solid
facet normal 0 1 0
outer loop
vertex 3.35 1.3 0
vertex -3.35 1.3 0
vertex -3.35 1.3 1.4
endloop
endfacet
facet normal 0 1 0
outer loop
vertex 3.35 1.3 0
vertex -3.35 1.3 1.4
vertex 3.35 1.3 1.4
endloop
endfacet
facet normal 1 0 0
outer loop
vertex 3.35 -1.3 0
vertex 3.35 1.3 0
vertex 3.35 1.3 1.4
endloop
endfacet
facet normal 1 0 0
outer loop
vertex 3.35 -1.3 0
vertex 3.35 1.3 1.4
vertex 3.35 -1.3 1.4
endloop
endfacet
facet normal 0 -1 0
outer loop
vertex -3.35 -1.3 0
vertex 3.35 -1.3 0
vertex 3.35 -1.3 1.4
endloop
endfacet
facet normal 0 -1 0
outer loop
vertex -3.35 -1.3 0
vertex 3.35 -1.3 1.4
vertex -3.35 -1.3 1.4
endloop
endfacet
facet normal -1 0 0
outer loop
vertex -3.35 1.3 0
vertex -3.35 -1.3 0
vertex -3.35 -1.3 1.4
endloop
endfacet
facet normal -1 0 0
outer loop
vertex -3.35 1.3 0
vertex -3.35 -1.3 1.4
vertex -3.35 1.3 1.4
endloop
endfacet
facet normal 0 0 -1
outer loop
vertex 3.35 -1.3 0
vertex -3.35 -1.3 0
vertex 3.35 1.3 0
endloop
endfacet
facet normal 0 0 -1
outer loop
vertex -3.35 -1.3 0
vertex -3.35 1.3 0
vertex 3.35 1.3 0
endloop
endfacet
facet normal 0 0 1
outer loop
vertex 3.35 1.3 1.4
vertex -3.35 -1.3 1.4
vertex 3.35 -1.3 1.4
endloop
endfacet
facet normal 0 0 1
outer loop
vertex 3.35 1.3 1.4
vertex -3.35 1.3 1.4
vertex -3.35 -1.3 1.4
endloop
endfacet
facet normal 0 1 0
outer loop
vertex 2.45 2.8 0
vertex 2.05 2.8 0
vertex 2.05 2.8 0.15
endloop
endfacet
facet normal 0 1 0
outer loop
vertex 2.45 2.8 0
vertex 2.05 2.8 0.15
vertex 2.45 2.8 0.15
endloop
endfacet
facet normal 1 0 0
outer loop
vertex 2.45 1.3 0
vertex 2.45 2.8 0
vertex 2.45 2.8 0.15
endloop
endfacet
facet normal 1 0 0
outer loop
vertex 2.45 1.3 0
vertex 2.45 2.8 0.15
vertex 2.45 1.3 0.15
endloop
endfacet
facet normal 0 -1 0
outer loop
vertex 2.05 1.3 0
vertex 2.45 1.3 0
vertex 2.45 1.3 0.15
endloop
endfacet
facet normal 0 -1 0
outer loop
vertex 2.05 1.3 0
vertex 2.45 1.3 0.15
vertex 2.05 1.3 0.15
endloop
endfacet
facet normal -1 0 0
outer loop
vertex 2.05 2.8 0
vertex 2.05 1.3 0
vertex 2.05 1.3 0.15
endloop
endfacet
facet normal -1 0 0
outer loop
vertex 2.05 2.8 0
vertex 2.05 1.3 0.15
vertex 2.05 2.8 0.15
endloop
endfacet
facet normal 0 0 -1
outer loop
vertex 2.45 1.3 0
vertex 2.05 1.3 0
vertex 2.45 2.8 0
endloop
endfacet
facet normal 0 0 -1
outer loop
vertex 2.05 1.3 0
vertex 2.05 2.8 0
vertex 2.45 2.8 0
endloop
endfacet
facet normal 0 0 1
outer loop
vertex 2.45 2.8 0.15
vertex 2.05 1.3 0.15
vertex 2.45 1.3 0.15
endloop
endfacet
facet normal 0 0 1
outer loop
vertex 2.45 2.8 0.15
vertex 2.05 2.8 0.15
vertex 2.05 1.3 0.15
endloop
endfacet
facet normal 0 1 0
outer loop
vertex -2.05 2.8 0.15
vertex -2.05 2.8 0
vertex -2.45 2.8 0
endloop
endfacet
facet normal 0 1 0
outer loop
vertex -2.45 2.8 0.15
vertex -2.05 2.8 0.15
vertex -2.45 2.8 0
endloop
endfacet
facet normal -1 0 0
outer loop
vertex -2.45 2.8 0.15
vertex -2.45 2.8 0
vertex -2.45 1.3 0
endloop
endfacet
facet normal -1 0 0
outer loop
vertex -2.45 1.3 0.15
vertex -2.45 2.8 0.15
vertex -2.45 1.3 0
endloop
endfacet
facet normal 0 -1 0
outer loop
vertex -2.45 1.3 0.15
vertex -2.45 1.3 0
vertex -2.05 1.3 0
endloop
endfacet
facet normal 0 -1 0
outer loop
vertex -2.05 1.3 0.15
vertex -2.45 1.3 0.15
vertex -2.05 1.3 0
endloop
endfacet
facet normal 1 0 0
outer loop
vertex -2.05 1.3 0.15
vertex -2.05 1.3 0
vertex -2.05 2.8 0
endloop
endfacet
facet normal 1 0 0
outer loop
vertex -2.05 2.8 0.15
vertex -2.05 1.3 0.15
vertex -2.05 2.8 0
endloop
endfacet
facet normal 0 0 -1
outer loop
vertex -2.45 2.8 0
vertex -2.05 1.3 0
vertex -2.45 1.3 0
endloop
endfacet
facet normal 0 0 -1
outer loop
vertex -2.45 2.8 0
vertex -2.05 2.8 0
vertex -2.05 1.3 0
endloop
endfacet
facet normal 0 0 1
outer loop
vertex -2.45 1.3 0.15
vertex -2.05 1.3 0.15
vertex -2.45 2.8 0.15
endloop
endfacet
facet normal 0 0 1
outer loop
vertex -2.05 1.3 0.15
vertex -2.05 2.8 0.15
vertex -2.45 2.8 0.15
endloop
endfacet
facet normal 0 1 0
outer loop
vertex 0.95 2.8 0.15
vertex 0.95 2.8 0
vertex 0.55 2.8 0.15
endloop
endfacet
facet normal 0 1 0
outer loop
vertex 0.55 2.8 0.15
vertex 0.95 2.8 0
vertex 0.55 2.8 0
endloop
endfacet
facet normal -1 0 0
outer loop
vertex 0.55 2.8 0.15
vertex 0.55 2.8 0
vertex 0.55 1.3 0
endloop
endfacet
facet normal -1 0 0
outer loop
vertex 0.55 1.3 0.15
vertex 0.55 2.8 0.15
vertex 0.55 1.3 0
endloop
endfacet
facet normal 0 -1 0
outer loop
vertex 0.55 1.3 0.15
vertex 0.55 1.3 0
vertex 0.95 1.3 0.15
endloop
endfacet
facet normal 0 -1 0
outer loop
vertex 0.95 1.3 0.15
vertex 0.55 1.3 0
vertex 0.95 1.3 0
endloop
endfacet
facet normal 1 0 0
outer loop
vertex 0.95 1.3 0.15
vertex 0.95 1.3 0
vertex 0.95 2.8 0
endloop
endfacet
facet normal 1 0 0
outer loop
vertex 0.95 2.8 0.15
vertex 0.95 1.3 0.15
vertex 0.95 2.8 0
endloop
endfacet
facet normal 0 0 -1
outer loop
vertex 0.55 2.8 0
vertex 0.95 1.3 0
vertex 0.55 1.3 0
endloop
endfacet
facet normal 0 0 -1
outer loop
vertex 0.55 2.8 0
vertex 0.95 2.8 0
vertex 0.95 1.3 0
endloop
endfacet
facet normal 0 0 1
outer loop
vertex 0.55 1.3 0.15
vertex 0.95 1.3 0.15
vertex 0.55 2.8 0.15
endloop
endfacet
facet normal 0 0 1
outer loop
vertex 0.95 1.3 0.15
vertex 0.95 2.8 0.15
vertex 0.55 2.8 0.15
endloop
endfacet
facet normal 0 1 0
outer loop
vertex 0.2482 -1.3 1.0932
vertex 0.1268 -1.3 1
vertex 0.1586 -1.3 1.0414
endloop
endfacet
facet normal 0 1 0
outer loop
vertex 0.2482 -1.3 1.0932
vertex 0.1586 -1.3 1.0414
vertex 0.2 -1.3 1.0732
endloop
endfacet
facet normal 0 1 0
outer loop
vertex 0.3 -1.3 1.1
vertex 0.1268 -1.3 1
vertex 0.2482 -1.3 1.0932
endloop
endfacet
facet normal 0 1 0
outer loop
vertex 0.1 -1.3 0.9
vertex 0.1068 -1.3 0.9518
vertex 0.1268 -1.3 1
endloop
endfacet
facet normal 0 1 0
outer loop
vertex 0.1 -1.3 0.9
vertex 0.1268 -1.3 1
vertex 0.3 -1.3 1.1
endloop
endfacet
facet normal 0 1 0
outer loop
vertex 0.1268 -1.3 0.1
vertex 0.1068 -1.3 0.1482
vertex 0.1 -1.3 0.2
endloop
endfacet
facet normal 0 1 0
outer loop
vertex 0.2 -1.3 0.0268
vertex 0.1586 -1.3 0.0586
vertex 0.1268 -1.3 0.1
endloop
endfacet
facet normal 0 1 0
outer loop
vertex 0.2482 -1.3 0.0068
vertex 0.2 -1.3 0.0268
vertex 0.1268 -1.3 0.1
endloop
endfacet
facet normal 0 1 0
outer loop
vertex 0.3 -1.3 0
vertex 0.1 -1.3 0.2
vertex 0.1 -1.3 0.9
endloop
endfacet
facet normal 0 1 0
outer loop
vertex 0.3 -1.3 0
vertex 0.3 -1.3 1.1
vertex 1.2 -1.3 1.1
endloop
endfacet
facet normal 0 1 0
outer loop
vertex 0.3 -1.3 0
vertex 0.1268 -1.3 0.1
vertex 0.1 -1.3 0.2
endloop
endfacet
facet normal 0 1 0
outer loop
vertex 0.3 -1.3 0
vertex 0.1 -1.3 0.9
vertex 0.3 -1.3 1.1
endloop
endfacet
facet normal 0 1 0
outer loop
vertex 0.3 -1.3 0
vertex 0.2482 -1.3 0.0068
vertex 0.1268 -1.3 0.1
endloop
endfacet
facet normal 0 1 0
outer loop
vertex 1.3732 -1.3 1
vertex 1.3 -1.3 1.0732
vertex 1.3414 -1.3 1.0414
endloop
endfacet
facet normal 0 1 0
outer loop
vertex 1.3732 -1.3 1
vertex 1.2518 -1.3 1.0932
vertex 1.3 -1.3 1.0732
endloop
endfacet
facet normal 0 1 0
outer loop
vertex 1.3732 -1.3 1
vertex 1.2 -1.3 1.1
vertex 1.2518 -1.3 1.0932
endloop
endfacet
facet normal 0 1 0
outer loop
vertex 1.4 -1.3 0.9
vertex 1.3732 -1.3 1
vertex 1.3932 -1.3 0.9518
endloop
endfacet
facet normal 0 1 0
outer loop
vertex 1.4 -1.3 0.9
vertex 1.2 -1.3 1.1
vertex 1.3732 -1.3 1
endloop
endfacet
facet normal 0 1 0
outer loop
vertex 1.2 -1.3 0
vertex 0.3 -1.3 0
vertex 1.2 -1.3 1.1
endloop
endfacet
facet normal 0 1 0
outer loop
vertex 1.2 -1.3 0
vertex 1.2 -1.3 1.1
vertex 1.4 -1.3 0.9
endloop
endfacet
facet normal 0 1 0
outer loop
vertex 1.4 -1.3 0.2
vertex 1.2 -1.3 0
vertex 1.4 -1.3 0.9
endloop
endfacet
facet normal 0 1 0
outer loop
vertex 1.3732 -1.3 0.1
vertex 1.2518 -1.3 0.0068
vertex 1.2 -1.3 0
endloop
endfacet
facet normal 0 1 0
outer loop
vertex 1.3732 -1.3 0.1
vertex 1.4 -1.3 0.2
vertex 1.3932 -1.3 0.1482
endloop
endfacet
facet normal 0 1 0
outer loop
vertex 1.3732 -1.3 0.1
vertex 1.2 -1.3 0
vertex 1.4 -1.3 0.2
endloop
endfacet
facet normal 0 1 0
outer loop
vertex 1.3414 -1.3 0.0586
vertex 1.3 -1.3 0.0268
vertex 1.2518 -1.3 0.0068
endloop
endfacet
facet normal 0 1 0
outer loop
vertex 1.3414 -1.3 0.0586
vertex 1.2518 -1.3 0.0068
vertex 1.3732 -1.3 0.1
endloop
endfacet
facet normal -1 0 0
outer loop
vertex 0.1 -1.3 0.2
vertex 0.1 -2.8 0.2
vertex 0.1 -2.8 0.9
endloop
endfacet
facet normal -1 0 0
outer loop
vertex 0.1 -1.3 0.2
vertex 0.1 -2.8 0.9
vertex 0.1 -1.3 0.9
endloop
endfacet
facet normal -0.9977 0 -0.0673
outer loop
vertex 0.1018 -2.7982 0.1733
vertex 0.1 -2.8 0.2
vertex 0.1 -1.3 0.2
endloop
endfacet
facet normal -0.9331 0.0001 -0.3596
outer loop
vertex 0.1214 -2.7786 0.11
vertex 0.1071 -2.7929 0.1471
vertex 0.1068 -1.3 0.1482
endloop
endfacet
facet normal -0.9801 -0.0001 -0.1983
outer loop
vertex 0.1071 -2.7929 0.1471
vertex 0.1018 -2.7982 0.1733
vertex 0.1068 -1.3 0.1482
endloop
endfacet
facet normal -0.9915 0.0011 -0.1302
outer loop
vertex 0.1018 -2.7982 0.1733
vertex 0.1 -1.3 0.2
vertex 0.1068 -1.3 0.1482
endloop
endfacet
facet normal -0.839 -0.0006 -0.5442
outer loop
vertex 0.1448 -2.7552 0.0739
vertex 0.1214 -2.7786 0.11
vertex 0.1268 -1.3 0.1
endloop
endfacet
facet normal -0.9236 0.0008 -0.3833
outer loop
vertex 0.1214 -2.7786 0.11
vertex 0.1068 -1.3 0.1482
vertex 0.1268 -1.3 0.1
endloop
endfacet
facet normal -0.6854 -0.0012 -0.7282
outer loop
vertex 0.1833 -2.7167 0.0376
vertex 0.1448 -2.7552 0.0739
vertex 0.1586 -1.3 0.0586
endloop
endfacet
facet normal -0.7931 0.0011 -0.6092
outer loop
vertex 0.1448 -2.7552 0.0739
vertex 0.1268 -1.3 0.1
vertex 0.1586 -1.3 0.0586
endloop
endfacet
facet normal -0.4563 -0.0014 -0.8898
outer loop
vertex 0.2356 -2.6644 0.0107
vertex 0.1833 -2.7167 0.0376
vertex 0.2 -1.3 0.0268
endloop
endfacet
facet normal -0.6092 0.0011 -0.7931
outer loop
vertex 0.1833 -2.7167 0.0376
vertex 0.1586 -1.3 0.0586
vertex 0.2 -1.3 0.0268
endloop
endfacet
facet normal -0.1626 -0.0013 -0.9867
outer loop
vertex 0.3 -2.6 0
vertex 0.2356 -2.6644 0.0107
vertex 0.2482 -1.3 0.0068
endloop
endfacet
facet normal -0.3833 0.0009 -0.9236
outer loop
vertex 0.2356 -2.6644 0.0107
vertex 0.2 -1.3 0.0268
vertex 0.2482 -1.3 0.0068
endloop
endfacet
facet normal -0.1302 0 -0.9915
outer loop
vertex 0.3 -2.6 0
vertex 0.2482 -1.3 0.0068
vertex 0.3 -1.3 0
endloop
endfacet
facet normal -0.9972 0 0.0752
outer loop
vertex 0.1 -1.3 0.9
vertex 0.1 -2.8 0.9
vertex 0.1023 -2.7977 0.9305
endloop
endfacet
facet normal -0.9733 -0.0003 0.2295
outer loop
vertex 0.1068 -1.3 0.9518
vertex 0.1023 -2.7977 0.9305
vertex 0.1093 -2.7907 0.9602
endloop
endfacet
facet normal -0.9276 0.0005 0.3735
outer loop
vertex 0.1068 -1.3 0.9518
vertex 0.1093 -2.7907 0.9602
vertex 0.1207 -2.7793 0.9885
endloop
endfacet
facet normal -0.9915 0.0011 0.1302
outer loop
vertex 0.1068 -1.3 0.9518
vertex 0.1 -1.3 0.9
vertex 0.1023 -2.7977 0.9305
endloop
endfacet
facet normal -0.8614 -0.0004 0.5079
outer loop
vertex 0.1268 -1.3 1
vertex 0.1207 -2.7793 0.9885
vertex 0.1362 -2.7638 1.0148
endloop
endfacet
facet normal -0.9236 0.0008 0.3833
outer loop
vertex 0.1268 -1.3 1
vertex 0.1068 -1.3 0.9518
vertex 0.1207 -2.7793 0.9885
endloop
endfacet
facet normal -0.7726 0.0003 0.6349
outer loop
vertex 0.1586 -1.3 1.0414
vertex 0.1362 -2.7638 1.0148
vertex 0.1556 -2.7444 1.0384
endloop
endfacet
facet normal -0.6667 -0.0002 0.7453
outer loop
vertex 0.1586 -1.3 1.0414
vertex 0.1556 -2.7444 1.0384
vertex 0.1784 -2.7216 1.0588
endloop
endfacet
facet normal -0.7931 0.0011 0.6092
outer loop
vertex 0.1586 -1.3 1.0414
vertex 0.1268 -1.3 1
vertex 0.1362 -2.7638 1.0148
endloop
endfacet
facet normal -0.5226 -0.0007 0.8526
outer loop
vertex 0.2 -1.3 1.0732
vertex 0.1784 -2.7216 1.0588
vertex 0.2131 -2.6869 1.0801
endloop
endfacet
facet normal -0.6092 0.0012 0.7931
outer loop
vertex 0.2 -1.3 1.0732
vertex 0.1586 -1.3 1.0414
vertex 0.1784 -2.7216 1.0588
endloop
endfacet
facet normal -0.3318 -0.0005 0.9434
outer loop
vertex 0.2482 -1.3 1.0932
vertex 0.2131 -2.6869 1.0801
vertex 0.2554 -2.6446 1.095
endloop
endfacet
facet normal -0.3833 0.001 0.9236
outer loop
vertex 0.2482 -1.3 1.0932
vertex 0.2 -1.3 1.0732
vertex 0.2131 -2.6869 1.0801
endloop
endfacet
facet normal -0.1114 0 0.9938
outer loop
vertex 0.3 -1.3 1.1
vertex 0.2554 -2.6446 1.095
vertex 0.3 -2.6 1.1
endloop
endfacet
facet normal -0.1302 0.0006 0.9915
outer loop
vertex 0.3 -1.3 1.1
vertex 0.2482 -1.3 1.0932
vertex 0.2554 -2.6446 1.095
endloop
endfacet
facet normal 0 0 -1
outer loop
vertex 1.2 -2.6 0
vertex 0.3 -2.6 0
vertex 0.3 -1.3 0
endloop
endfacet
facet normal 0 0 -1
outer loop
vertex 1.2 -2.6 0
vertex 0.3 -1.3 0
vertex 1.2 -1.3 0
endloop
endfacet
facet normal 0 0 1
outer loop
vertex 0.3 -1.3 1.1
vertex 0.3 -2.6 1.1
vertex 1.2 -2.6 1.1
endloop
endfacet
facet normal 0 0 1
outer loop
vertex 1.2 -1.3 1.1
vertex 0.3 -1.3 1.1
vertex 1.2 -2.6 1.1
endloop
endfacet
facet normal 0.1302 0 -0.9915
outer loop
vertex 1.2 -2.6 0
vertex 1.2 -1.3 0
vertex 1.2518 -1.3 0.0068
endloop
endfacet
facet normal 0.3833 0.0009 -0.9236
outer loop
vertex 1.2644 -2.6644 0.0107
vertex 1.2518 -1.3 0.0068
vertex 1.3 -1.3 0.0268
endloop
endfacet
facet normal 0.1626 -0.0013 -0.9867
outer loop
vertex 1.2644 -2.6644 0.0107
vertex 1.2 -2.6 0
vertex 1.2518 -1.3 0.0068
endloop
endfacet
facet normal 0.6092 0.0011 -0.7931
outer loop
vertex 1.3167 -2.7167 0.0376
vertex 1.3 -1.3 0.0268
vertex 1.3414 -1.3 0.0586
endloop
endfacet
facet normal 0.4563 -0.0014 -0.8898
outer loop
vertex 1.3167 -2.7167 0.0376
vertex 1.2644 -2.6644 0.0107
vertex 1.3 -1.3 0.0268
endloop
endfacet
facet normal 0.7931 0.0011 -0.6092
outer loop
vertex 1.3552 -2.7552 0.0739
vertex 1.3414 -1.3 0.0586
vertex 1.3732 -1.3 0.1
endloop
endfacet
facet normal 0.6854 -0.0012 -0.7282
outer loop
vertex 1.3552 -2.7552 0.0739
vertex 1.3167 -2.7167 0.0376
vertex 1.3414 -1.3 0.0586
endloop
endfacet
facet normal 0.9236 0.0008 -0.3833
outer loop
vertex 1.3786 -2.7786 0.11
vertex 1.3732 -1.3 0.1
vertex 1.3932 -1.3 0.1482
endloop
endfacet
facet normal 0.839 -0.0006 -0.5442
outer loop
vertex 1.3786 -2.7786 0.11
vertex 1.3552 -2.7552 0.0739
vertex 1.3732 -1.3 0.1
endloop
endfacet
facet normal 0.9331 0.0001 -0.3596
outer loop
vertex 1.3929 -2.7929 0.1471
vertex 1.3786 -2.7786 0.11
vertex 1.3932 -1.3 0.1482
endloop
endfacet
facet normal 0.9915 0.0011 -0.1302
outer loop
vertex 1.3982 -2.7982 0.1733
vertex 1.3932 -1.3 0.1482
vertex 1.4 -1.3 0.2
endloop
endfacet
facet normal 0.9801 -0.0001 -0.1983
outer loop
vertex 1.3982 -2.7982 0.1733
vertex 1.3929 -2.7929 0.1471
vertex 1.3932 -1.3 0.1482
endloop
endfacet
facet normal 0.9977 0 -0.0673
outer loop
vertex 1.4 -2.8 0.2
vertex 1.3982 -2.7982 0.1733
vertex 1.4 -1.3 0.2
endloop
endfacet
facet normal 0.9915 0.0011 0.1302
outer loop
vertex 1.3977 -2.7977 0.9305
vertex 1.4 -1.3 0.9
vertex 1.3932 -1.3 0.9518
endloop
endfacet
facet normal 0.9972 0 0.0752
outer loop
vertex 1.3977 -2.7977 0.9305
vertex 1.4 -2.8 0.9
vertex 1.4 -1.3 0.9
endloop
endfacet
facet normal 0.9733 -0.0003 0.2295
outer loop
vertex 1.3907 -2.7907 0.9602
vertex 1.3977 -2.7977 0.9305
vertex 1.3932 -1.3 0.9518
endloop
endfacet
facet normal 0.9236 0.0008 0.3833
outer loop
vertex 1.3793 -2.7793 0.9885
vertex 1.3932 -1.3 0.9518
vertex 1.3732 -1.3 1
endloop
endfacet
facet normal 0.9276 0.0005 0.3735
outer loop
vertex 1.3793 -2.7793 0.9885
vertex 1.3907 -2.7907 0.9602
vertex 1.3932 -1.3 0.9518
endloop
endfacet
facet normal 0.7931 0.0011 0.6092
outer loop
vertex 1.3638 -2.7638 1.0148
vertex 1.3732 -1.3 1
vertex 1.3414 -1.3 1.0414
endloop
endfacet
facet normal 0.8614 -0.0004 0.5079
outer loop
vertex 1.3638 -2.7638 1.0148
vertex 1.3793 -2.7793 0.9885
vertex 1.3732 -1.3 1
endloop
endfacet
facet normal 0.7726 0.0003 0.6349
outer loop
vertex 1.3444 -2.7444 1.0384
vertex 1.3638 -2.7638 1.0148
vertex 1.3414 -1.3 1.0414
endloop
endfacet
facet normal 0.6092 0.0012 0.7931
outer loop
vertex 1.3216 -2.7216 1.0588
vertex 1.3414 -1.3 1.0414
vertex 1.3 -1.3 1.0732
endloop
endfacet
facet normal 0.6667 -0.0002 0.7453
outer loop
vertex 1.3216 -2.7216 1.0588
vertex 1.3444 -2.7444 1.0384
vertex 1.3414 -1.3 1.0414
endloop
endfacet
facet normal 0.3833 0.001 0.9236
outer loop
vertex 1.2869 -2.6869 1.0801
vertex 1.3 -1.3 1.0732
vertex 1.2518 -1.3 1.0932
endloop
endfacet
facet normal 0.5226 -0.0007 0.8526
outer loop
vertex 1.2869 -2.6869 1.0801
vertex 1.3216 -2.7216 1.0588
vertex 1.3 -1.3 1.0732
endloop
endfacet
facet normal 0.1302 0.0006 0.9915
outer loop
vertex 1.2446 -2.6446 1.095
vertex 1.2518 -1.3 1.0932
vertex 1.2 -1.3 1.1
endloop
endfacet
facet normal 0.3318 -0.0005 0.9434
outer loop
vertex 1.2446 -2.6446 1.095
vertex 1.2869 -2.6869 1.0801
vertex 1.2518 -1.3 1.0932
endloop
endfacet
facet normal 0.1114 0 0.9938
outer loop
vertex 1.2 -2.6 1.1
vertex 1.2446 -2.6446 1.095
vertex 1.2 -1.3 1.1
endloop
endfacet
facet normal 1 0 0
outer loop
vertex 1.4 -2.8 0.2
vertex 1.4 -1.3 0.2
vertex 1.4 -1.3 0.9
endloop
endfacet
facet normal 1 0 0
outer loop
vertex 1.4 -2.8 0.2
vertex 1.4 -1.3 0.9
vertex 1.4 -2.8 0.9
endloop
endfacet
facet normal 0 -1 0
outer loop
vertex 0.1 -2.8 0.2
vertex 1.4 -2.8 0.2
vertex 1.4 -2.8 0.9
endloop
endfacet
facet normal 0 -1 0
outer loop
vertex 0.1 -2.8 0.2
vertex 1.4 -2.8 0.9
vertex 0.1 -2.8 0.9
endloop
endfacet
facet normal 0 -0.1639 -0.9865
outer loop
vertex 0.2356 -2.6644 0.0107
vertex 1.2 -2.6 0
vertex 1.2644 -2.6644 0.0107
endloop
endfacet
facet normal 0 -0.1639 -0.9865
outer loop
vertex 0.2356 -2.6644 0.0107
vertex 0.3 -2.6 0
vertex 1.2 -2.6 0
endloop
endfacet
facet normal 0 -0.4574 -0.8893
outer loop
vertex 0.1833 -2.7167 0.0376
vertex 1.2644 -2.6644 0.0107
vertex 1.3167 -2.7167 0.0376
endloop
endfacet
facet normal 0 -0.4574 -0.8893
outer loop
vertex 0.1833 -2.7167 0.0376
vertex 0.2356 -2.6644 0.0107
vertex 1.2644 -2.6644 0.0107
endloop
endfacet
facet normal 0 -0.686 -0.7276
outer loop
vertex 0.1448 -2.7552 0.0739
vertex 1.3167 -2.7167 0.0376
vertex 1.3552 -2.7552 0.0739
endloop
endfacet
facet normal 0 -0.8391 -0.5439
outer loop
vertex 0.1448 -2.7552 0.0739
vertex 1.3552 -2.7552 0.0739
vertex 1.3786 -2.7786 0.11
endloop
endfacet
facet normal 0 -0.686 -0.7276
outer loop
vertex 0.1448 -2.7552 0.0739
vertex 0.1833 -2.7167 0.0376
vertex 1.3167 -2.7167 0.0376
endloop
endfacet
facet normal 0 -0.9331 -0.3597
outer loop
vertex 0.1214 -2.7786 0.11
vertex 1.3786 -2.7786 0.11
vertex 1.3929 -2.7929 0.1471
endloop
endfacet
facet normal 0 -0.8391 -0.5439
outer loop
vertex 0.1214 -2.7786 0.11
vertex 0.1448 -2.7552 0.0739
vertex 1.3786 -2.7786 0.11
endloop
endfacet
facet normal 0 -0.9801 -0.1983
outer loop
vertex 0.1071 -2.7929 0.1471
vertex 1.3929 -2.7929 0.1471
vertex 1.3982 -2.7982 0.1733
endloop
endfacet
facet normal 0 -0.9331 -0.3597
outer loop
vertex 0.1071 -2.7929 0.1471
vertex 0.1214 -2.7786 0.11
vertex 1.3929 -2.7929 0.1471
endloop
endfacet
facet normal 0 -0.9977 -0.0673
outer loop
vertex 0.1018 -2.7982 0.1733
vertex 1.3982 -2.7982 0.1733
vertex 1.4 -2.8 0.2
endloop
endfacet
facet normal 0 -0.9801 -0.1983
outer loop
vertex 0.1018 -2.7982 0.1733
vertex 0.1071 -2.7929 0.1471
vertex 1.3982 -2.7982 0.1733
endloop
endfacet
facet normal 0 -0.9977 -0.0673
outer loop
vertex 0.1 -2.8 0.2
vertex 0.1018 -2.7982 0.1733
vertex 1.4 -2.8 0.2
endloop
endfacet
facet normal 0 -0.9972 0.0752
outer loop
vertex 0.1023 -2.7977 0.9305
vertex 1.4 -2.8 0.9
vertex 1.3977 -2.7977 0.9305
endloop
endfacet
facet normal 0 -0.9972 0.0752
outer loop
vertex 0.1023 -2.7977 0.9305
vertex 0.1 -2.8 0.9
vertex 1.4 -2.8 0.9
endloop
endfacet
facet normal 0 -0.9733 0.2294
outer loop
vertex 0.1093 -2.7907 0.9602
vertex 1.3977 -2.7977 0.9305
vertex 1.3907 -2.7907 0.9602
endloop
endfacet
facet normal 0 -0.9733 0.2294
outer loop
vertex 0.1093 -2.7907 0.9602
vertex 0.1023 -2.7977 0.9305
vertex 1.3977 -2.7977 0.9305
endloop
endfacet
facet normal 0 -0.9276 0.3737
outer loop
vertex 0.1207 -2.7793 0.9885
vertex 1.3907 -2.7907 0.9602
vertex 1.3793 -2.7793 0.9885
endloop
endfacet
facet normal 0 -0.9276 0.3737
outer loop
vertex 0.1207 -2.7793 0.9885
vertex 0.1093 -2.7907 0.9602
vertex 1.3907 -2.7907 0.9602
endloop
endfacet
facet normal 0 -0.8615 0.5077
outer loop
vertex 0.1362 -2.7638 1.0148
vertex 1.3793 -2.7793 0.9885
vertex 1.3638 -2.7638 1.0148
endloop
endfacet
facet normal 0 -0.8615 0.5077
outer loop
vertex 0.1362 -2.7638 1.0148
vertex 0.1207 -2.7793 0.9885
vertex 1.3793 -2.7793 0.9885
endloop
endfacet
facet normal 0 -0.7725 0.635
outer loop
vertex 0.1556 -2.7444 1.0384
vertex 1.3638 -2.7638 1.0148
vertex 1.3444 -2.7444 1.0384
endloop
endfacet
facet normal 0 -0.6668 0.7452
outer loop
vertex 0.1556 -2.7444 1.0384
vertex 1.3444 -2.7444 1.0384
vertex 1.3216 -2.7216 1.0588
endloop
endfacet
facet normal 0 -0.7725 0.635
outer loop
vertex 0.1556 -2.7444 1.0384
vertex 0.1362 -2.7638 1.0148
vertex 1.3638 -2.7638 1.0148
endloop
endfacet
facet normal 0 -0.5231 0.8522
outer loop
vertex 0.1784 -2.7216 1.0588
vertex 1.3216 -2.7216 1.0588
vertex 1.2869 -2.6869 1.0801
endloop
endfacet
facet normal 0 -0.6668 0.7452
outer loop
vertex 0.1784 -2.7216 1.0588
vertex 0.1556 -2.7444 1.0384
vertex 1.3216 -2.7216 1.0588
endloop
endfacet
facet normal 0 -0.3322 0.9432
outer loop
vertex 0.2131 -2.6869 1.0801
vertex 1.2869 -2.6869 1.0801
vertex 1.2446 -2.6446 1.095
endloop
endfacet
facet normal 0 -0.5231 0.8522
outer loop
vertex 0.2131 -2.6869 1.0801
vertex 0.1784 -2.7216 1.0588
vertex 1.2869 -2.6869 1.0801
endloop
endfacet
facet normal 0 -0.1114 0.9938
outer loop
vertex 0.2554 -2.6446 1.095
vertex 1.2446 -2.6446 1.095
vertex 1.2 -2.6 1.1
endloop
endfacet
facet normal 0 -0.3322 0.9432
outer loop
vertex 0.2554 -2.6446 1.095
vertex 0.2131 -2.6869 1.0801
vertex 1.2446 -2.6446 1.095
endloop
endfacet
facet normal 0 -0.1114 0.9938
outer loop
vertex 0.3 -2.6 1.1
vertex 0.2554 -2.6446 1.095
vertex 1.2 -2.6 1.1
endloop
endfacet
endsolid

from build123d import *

# Parameters (mm, degrees)
SKETCH_W     = 6.7
SKETCH_H     = 2.6
PAD_DEPTH    = 1.4
SKETCH001_W  = 0.4
SKETCH001_H  = 1.5
PAD001_DEPTH = 0.15
SKETCH002_W  = 1.3
SKETCH002_H  = 1.5
PAD002_DEPTH = 1.1
FILLET_R     = 0.2
FILLET001_R  = 0.2


with BuildPart() as pad:
    # Sketch → Pad (new body)
    with BuildSketch(Plane.XY):
        Rectangle(SKETCH_W, SKETCH_H)
    extrude(amount=PAD_DEPTH)


with BuildPart() as pad001:
    # Sketch001 → Pad001 (new body)
    with BuildSketch(Plane.XY):
        with Locations((-2.25, 2.05)):
            Rectangle(SKETCH001_W, SKETCH001_H)
        with Locations((0.75, 2.05)):
            Rectangle(SKETCH001_W, SKETCH001_H)
        with Locations((2.25, 2.05)):
            Rectangle(SKETCH001_W, SKETCH001_H)
    extrude(amount=PAD001_DEPTH)


with BuildPart() as fillet001:
    # Sketch002 → Pad002 (new body)
    with BuildSketch(Plane.XY):
        with Locations((0.75, -2.05)):
            Rectangle(SKETCH002_W, SKETCH002_H)
    extrude(amount=PAD002_DEPTH)

    # Fillet
    fillet_edges = [fillet001.edges().sort_by_distance(p)[0] for p in [
        (1.4, -2.05, 1.1),
        (0.75, -2.8, 1.1),
        (0.1, -2.05, 1.1),
    ]]
    fillet(fillet_edges, radius=FILLET_R)

    # Fillet001
    fillet001_edges = [fillet001.edges().sort_by_distance(p)[0] for p in [
        (1.4, -2.05, 0),
        (0.75, -2.8, 0),
        (0.1, -2.05, 0),
    ]]
    fillet(fillet001_edges, radius=FILLET001_R)


solid = Compound([pad.part, pad001.part, fillet001.part])
